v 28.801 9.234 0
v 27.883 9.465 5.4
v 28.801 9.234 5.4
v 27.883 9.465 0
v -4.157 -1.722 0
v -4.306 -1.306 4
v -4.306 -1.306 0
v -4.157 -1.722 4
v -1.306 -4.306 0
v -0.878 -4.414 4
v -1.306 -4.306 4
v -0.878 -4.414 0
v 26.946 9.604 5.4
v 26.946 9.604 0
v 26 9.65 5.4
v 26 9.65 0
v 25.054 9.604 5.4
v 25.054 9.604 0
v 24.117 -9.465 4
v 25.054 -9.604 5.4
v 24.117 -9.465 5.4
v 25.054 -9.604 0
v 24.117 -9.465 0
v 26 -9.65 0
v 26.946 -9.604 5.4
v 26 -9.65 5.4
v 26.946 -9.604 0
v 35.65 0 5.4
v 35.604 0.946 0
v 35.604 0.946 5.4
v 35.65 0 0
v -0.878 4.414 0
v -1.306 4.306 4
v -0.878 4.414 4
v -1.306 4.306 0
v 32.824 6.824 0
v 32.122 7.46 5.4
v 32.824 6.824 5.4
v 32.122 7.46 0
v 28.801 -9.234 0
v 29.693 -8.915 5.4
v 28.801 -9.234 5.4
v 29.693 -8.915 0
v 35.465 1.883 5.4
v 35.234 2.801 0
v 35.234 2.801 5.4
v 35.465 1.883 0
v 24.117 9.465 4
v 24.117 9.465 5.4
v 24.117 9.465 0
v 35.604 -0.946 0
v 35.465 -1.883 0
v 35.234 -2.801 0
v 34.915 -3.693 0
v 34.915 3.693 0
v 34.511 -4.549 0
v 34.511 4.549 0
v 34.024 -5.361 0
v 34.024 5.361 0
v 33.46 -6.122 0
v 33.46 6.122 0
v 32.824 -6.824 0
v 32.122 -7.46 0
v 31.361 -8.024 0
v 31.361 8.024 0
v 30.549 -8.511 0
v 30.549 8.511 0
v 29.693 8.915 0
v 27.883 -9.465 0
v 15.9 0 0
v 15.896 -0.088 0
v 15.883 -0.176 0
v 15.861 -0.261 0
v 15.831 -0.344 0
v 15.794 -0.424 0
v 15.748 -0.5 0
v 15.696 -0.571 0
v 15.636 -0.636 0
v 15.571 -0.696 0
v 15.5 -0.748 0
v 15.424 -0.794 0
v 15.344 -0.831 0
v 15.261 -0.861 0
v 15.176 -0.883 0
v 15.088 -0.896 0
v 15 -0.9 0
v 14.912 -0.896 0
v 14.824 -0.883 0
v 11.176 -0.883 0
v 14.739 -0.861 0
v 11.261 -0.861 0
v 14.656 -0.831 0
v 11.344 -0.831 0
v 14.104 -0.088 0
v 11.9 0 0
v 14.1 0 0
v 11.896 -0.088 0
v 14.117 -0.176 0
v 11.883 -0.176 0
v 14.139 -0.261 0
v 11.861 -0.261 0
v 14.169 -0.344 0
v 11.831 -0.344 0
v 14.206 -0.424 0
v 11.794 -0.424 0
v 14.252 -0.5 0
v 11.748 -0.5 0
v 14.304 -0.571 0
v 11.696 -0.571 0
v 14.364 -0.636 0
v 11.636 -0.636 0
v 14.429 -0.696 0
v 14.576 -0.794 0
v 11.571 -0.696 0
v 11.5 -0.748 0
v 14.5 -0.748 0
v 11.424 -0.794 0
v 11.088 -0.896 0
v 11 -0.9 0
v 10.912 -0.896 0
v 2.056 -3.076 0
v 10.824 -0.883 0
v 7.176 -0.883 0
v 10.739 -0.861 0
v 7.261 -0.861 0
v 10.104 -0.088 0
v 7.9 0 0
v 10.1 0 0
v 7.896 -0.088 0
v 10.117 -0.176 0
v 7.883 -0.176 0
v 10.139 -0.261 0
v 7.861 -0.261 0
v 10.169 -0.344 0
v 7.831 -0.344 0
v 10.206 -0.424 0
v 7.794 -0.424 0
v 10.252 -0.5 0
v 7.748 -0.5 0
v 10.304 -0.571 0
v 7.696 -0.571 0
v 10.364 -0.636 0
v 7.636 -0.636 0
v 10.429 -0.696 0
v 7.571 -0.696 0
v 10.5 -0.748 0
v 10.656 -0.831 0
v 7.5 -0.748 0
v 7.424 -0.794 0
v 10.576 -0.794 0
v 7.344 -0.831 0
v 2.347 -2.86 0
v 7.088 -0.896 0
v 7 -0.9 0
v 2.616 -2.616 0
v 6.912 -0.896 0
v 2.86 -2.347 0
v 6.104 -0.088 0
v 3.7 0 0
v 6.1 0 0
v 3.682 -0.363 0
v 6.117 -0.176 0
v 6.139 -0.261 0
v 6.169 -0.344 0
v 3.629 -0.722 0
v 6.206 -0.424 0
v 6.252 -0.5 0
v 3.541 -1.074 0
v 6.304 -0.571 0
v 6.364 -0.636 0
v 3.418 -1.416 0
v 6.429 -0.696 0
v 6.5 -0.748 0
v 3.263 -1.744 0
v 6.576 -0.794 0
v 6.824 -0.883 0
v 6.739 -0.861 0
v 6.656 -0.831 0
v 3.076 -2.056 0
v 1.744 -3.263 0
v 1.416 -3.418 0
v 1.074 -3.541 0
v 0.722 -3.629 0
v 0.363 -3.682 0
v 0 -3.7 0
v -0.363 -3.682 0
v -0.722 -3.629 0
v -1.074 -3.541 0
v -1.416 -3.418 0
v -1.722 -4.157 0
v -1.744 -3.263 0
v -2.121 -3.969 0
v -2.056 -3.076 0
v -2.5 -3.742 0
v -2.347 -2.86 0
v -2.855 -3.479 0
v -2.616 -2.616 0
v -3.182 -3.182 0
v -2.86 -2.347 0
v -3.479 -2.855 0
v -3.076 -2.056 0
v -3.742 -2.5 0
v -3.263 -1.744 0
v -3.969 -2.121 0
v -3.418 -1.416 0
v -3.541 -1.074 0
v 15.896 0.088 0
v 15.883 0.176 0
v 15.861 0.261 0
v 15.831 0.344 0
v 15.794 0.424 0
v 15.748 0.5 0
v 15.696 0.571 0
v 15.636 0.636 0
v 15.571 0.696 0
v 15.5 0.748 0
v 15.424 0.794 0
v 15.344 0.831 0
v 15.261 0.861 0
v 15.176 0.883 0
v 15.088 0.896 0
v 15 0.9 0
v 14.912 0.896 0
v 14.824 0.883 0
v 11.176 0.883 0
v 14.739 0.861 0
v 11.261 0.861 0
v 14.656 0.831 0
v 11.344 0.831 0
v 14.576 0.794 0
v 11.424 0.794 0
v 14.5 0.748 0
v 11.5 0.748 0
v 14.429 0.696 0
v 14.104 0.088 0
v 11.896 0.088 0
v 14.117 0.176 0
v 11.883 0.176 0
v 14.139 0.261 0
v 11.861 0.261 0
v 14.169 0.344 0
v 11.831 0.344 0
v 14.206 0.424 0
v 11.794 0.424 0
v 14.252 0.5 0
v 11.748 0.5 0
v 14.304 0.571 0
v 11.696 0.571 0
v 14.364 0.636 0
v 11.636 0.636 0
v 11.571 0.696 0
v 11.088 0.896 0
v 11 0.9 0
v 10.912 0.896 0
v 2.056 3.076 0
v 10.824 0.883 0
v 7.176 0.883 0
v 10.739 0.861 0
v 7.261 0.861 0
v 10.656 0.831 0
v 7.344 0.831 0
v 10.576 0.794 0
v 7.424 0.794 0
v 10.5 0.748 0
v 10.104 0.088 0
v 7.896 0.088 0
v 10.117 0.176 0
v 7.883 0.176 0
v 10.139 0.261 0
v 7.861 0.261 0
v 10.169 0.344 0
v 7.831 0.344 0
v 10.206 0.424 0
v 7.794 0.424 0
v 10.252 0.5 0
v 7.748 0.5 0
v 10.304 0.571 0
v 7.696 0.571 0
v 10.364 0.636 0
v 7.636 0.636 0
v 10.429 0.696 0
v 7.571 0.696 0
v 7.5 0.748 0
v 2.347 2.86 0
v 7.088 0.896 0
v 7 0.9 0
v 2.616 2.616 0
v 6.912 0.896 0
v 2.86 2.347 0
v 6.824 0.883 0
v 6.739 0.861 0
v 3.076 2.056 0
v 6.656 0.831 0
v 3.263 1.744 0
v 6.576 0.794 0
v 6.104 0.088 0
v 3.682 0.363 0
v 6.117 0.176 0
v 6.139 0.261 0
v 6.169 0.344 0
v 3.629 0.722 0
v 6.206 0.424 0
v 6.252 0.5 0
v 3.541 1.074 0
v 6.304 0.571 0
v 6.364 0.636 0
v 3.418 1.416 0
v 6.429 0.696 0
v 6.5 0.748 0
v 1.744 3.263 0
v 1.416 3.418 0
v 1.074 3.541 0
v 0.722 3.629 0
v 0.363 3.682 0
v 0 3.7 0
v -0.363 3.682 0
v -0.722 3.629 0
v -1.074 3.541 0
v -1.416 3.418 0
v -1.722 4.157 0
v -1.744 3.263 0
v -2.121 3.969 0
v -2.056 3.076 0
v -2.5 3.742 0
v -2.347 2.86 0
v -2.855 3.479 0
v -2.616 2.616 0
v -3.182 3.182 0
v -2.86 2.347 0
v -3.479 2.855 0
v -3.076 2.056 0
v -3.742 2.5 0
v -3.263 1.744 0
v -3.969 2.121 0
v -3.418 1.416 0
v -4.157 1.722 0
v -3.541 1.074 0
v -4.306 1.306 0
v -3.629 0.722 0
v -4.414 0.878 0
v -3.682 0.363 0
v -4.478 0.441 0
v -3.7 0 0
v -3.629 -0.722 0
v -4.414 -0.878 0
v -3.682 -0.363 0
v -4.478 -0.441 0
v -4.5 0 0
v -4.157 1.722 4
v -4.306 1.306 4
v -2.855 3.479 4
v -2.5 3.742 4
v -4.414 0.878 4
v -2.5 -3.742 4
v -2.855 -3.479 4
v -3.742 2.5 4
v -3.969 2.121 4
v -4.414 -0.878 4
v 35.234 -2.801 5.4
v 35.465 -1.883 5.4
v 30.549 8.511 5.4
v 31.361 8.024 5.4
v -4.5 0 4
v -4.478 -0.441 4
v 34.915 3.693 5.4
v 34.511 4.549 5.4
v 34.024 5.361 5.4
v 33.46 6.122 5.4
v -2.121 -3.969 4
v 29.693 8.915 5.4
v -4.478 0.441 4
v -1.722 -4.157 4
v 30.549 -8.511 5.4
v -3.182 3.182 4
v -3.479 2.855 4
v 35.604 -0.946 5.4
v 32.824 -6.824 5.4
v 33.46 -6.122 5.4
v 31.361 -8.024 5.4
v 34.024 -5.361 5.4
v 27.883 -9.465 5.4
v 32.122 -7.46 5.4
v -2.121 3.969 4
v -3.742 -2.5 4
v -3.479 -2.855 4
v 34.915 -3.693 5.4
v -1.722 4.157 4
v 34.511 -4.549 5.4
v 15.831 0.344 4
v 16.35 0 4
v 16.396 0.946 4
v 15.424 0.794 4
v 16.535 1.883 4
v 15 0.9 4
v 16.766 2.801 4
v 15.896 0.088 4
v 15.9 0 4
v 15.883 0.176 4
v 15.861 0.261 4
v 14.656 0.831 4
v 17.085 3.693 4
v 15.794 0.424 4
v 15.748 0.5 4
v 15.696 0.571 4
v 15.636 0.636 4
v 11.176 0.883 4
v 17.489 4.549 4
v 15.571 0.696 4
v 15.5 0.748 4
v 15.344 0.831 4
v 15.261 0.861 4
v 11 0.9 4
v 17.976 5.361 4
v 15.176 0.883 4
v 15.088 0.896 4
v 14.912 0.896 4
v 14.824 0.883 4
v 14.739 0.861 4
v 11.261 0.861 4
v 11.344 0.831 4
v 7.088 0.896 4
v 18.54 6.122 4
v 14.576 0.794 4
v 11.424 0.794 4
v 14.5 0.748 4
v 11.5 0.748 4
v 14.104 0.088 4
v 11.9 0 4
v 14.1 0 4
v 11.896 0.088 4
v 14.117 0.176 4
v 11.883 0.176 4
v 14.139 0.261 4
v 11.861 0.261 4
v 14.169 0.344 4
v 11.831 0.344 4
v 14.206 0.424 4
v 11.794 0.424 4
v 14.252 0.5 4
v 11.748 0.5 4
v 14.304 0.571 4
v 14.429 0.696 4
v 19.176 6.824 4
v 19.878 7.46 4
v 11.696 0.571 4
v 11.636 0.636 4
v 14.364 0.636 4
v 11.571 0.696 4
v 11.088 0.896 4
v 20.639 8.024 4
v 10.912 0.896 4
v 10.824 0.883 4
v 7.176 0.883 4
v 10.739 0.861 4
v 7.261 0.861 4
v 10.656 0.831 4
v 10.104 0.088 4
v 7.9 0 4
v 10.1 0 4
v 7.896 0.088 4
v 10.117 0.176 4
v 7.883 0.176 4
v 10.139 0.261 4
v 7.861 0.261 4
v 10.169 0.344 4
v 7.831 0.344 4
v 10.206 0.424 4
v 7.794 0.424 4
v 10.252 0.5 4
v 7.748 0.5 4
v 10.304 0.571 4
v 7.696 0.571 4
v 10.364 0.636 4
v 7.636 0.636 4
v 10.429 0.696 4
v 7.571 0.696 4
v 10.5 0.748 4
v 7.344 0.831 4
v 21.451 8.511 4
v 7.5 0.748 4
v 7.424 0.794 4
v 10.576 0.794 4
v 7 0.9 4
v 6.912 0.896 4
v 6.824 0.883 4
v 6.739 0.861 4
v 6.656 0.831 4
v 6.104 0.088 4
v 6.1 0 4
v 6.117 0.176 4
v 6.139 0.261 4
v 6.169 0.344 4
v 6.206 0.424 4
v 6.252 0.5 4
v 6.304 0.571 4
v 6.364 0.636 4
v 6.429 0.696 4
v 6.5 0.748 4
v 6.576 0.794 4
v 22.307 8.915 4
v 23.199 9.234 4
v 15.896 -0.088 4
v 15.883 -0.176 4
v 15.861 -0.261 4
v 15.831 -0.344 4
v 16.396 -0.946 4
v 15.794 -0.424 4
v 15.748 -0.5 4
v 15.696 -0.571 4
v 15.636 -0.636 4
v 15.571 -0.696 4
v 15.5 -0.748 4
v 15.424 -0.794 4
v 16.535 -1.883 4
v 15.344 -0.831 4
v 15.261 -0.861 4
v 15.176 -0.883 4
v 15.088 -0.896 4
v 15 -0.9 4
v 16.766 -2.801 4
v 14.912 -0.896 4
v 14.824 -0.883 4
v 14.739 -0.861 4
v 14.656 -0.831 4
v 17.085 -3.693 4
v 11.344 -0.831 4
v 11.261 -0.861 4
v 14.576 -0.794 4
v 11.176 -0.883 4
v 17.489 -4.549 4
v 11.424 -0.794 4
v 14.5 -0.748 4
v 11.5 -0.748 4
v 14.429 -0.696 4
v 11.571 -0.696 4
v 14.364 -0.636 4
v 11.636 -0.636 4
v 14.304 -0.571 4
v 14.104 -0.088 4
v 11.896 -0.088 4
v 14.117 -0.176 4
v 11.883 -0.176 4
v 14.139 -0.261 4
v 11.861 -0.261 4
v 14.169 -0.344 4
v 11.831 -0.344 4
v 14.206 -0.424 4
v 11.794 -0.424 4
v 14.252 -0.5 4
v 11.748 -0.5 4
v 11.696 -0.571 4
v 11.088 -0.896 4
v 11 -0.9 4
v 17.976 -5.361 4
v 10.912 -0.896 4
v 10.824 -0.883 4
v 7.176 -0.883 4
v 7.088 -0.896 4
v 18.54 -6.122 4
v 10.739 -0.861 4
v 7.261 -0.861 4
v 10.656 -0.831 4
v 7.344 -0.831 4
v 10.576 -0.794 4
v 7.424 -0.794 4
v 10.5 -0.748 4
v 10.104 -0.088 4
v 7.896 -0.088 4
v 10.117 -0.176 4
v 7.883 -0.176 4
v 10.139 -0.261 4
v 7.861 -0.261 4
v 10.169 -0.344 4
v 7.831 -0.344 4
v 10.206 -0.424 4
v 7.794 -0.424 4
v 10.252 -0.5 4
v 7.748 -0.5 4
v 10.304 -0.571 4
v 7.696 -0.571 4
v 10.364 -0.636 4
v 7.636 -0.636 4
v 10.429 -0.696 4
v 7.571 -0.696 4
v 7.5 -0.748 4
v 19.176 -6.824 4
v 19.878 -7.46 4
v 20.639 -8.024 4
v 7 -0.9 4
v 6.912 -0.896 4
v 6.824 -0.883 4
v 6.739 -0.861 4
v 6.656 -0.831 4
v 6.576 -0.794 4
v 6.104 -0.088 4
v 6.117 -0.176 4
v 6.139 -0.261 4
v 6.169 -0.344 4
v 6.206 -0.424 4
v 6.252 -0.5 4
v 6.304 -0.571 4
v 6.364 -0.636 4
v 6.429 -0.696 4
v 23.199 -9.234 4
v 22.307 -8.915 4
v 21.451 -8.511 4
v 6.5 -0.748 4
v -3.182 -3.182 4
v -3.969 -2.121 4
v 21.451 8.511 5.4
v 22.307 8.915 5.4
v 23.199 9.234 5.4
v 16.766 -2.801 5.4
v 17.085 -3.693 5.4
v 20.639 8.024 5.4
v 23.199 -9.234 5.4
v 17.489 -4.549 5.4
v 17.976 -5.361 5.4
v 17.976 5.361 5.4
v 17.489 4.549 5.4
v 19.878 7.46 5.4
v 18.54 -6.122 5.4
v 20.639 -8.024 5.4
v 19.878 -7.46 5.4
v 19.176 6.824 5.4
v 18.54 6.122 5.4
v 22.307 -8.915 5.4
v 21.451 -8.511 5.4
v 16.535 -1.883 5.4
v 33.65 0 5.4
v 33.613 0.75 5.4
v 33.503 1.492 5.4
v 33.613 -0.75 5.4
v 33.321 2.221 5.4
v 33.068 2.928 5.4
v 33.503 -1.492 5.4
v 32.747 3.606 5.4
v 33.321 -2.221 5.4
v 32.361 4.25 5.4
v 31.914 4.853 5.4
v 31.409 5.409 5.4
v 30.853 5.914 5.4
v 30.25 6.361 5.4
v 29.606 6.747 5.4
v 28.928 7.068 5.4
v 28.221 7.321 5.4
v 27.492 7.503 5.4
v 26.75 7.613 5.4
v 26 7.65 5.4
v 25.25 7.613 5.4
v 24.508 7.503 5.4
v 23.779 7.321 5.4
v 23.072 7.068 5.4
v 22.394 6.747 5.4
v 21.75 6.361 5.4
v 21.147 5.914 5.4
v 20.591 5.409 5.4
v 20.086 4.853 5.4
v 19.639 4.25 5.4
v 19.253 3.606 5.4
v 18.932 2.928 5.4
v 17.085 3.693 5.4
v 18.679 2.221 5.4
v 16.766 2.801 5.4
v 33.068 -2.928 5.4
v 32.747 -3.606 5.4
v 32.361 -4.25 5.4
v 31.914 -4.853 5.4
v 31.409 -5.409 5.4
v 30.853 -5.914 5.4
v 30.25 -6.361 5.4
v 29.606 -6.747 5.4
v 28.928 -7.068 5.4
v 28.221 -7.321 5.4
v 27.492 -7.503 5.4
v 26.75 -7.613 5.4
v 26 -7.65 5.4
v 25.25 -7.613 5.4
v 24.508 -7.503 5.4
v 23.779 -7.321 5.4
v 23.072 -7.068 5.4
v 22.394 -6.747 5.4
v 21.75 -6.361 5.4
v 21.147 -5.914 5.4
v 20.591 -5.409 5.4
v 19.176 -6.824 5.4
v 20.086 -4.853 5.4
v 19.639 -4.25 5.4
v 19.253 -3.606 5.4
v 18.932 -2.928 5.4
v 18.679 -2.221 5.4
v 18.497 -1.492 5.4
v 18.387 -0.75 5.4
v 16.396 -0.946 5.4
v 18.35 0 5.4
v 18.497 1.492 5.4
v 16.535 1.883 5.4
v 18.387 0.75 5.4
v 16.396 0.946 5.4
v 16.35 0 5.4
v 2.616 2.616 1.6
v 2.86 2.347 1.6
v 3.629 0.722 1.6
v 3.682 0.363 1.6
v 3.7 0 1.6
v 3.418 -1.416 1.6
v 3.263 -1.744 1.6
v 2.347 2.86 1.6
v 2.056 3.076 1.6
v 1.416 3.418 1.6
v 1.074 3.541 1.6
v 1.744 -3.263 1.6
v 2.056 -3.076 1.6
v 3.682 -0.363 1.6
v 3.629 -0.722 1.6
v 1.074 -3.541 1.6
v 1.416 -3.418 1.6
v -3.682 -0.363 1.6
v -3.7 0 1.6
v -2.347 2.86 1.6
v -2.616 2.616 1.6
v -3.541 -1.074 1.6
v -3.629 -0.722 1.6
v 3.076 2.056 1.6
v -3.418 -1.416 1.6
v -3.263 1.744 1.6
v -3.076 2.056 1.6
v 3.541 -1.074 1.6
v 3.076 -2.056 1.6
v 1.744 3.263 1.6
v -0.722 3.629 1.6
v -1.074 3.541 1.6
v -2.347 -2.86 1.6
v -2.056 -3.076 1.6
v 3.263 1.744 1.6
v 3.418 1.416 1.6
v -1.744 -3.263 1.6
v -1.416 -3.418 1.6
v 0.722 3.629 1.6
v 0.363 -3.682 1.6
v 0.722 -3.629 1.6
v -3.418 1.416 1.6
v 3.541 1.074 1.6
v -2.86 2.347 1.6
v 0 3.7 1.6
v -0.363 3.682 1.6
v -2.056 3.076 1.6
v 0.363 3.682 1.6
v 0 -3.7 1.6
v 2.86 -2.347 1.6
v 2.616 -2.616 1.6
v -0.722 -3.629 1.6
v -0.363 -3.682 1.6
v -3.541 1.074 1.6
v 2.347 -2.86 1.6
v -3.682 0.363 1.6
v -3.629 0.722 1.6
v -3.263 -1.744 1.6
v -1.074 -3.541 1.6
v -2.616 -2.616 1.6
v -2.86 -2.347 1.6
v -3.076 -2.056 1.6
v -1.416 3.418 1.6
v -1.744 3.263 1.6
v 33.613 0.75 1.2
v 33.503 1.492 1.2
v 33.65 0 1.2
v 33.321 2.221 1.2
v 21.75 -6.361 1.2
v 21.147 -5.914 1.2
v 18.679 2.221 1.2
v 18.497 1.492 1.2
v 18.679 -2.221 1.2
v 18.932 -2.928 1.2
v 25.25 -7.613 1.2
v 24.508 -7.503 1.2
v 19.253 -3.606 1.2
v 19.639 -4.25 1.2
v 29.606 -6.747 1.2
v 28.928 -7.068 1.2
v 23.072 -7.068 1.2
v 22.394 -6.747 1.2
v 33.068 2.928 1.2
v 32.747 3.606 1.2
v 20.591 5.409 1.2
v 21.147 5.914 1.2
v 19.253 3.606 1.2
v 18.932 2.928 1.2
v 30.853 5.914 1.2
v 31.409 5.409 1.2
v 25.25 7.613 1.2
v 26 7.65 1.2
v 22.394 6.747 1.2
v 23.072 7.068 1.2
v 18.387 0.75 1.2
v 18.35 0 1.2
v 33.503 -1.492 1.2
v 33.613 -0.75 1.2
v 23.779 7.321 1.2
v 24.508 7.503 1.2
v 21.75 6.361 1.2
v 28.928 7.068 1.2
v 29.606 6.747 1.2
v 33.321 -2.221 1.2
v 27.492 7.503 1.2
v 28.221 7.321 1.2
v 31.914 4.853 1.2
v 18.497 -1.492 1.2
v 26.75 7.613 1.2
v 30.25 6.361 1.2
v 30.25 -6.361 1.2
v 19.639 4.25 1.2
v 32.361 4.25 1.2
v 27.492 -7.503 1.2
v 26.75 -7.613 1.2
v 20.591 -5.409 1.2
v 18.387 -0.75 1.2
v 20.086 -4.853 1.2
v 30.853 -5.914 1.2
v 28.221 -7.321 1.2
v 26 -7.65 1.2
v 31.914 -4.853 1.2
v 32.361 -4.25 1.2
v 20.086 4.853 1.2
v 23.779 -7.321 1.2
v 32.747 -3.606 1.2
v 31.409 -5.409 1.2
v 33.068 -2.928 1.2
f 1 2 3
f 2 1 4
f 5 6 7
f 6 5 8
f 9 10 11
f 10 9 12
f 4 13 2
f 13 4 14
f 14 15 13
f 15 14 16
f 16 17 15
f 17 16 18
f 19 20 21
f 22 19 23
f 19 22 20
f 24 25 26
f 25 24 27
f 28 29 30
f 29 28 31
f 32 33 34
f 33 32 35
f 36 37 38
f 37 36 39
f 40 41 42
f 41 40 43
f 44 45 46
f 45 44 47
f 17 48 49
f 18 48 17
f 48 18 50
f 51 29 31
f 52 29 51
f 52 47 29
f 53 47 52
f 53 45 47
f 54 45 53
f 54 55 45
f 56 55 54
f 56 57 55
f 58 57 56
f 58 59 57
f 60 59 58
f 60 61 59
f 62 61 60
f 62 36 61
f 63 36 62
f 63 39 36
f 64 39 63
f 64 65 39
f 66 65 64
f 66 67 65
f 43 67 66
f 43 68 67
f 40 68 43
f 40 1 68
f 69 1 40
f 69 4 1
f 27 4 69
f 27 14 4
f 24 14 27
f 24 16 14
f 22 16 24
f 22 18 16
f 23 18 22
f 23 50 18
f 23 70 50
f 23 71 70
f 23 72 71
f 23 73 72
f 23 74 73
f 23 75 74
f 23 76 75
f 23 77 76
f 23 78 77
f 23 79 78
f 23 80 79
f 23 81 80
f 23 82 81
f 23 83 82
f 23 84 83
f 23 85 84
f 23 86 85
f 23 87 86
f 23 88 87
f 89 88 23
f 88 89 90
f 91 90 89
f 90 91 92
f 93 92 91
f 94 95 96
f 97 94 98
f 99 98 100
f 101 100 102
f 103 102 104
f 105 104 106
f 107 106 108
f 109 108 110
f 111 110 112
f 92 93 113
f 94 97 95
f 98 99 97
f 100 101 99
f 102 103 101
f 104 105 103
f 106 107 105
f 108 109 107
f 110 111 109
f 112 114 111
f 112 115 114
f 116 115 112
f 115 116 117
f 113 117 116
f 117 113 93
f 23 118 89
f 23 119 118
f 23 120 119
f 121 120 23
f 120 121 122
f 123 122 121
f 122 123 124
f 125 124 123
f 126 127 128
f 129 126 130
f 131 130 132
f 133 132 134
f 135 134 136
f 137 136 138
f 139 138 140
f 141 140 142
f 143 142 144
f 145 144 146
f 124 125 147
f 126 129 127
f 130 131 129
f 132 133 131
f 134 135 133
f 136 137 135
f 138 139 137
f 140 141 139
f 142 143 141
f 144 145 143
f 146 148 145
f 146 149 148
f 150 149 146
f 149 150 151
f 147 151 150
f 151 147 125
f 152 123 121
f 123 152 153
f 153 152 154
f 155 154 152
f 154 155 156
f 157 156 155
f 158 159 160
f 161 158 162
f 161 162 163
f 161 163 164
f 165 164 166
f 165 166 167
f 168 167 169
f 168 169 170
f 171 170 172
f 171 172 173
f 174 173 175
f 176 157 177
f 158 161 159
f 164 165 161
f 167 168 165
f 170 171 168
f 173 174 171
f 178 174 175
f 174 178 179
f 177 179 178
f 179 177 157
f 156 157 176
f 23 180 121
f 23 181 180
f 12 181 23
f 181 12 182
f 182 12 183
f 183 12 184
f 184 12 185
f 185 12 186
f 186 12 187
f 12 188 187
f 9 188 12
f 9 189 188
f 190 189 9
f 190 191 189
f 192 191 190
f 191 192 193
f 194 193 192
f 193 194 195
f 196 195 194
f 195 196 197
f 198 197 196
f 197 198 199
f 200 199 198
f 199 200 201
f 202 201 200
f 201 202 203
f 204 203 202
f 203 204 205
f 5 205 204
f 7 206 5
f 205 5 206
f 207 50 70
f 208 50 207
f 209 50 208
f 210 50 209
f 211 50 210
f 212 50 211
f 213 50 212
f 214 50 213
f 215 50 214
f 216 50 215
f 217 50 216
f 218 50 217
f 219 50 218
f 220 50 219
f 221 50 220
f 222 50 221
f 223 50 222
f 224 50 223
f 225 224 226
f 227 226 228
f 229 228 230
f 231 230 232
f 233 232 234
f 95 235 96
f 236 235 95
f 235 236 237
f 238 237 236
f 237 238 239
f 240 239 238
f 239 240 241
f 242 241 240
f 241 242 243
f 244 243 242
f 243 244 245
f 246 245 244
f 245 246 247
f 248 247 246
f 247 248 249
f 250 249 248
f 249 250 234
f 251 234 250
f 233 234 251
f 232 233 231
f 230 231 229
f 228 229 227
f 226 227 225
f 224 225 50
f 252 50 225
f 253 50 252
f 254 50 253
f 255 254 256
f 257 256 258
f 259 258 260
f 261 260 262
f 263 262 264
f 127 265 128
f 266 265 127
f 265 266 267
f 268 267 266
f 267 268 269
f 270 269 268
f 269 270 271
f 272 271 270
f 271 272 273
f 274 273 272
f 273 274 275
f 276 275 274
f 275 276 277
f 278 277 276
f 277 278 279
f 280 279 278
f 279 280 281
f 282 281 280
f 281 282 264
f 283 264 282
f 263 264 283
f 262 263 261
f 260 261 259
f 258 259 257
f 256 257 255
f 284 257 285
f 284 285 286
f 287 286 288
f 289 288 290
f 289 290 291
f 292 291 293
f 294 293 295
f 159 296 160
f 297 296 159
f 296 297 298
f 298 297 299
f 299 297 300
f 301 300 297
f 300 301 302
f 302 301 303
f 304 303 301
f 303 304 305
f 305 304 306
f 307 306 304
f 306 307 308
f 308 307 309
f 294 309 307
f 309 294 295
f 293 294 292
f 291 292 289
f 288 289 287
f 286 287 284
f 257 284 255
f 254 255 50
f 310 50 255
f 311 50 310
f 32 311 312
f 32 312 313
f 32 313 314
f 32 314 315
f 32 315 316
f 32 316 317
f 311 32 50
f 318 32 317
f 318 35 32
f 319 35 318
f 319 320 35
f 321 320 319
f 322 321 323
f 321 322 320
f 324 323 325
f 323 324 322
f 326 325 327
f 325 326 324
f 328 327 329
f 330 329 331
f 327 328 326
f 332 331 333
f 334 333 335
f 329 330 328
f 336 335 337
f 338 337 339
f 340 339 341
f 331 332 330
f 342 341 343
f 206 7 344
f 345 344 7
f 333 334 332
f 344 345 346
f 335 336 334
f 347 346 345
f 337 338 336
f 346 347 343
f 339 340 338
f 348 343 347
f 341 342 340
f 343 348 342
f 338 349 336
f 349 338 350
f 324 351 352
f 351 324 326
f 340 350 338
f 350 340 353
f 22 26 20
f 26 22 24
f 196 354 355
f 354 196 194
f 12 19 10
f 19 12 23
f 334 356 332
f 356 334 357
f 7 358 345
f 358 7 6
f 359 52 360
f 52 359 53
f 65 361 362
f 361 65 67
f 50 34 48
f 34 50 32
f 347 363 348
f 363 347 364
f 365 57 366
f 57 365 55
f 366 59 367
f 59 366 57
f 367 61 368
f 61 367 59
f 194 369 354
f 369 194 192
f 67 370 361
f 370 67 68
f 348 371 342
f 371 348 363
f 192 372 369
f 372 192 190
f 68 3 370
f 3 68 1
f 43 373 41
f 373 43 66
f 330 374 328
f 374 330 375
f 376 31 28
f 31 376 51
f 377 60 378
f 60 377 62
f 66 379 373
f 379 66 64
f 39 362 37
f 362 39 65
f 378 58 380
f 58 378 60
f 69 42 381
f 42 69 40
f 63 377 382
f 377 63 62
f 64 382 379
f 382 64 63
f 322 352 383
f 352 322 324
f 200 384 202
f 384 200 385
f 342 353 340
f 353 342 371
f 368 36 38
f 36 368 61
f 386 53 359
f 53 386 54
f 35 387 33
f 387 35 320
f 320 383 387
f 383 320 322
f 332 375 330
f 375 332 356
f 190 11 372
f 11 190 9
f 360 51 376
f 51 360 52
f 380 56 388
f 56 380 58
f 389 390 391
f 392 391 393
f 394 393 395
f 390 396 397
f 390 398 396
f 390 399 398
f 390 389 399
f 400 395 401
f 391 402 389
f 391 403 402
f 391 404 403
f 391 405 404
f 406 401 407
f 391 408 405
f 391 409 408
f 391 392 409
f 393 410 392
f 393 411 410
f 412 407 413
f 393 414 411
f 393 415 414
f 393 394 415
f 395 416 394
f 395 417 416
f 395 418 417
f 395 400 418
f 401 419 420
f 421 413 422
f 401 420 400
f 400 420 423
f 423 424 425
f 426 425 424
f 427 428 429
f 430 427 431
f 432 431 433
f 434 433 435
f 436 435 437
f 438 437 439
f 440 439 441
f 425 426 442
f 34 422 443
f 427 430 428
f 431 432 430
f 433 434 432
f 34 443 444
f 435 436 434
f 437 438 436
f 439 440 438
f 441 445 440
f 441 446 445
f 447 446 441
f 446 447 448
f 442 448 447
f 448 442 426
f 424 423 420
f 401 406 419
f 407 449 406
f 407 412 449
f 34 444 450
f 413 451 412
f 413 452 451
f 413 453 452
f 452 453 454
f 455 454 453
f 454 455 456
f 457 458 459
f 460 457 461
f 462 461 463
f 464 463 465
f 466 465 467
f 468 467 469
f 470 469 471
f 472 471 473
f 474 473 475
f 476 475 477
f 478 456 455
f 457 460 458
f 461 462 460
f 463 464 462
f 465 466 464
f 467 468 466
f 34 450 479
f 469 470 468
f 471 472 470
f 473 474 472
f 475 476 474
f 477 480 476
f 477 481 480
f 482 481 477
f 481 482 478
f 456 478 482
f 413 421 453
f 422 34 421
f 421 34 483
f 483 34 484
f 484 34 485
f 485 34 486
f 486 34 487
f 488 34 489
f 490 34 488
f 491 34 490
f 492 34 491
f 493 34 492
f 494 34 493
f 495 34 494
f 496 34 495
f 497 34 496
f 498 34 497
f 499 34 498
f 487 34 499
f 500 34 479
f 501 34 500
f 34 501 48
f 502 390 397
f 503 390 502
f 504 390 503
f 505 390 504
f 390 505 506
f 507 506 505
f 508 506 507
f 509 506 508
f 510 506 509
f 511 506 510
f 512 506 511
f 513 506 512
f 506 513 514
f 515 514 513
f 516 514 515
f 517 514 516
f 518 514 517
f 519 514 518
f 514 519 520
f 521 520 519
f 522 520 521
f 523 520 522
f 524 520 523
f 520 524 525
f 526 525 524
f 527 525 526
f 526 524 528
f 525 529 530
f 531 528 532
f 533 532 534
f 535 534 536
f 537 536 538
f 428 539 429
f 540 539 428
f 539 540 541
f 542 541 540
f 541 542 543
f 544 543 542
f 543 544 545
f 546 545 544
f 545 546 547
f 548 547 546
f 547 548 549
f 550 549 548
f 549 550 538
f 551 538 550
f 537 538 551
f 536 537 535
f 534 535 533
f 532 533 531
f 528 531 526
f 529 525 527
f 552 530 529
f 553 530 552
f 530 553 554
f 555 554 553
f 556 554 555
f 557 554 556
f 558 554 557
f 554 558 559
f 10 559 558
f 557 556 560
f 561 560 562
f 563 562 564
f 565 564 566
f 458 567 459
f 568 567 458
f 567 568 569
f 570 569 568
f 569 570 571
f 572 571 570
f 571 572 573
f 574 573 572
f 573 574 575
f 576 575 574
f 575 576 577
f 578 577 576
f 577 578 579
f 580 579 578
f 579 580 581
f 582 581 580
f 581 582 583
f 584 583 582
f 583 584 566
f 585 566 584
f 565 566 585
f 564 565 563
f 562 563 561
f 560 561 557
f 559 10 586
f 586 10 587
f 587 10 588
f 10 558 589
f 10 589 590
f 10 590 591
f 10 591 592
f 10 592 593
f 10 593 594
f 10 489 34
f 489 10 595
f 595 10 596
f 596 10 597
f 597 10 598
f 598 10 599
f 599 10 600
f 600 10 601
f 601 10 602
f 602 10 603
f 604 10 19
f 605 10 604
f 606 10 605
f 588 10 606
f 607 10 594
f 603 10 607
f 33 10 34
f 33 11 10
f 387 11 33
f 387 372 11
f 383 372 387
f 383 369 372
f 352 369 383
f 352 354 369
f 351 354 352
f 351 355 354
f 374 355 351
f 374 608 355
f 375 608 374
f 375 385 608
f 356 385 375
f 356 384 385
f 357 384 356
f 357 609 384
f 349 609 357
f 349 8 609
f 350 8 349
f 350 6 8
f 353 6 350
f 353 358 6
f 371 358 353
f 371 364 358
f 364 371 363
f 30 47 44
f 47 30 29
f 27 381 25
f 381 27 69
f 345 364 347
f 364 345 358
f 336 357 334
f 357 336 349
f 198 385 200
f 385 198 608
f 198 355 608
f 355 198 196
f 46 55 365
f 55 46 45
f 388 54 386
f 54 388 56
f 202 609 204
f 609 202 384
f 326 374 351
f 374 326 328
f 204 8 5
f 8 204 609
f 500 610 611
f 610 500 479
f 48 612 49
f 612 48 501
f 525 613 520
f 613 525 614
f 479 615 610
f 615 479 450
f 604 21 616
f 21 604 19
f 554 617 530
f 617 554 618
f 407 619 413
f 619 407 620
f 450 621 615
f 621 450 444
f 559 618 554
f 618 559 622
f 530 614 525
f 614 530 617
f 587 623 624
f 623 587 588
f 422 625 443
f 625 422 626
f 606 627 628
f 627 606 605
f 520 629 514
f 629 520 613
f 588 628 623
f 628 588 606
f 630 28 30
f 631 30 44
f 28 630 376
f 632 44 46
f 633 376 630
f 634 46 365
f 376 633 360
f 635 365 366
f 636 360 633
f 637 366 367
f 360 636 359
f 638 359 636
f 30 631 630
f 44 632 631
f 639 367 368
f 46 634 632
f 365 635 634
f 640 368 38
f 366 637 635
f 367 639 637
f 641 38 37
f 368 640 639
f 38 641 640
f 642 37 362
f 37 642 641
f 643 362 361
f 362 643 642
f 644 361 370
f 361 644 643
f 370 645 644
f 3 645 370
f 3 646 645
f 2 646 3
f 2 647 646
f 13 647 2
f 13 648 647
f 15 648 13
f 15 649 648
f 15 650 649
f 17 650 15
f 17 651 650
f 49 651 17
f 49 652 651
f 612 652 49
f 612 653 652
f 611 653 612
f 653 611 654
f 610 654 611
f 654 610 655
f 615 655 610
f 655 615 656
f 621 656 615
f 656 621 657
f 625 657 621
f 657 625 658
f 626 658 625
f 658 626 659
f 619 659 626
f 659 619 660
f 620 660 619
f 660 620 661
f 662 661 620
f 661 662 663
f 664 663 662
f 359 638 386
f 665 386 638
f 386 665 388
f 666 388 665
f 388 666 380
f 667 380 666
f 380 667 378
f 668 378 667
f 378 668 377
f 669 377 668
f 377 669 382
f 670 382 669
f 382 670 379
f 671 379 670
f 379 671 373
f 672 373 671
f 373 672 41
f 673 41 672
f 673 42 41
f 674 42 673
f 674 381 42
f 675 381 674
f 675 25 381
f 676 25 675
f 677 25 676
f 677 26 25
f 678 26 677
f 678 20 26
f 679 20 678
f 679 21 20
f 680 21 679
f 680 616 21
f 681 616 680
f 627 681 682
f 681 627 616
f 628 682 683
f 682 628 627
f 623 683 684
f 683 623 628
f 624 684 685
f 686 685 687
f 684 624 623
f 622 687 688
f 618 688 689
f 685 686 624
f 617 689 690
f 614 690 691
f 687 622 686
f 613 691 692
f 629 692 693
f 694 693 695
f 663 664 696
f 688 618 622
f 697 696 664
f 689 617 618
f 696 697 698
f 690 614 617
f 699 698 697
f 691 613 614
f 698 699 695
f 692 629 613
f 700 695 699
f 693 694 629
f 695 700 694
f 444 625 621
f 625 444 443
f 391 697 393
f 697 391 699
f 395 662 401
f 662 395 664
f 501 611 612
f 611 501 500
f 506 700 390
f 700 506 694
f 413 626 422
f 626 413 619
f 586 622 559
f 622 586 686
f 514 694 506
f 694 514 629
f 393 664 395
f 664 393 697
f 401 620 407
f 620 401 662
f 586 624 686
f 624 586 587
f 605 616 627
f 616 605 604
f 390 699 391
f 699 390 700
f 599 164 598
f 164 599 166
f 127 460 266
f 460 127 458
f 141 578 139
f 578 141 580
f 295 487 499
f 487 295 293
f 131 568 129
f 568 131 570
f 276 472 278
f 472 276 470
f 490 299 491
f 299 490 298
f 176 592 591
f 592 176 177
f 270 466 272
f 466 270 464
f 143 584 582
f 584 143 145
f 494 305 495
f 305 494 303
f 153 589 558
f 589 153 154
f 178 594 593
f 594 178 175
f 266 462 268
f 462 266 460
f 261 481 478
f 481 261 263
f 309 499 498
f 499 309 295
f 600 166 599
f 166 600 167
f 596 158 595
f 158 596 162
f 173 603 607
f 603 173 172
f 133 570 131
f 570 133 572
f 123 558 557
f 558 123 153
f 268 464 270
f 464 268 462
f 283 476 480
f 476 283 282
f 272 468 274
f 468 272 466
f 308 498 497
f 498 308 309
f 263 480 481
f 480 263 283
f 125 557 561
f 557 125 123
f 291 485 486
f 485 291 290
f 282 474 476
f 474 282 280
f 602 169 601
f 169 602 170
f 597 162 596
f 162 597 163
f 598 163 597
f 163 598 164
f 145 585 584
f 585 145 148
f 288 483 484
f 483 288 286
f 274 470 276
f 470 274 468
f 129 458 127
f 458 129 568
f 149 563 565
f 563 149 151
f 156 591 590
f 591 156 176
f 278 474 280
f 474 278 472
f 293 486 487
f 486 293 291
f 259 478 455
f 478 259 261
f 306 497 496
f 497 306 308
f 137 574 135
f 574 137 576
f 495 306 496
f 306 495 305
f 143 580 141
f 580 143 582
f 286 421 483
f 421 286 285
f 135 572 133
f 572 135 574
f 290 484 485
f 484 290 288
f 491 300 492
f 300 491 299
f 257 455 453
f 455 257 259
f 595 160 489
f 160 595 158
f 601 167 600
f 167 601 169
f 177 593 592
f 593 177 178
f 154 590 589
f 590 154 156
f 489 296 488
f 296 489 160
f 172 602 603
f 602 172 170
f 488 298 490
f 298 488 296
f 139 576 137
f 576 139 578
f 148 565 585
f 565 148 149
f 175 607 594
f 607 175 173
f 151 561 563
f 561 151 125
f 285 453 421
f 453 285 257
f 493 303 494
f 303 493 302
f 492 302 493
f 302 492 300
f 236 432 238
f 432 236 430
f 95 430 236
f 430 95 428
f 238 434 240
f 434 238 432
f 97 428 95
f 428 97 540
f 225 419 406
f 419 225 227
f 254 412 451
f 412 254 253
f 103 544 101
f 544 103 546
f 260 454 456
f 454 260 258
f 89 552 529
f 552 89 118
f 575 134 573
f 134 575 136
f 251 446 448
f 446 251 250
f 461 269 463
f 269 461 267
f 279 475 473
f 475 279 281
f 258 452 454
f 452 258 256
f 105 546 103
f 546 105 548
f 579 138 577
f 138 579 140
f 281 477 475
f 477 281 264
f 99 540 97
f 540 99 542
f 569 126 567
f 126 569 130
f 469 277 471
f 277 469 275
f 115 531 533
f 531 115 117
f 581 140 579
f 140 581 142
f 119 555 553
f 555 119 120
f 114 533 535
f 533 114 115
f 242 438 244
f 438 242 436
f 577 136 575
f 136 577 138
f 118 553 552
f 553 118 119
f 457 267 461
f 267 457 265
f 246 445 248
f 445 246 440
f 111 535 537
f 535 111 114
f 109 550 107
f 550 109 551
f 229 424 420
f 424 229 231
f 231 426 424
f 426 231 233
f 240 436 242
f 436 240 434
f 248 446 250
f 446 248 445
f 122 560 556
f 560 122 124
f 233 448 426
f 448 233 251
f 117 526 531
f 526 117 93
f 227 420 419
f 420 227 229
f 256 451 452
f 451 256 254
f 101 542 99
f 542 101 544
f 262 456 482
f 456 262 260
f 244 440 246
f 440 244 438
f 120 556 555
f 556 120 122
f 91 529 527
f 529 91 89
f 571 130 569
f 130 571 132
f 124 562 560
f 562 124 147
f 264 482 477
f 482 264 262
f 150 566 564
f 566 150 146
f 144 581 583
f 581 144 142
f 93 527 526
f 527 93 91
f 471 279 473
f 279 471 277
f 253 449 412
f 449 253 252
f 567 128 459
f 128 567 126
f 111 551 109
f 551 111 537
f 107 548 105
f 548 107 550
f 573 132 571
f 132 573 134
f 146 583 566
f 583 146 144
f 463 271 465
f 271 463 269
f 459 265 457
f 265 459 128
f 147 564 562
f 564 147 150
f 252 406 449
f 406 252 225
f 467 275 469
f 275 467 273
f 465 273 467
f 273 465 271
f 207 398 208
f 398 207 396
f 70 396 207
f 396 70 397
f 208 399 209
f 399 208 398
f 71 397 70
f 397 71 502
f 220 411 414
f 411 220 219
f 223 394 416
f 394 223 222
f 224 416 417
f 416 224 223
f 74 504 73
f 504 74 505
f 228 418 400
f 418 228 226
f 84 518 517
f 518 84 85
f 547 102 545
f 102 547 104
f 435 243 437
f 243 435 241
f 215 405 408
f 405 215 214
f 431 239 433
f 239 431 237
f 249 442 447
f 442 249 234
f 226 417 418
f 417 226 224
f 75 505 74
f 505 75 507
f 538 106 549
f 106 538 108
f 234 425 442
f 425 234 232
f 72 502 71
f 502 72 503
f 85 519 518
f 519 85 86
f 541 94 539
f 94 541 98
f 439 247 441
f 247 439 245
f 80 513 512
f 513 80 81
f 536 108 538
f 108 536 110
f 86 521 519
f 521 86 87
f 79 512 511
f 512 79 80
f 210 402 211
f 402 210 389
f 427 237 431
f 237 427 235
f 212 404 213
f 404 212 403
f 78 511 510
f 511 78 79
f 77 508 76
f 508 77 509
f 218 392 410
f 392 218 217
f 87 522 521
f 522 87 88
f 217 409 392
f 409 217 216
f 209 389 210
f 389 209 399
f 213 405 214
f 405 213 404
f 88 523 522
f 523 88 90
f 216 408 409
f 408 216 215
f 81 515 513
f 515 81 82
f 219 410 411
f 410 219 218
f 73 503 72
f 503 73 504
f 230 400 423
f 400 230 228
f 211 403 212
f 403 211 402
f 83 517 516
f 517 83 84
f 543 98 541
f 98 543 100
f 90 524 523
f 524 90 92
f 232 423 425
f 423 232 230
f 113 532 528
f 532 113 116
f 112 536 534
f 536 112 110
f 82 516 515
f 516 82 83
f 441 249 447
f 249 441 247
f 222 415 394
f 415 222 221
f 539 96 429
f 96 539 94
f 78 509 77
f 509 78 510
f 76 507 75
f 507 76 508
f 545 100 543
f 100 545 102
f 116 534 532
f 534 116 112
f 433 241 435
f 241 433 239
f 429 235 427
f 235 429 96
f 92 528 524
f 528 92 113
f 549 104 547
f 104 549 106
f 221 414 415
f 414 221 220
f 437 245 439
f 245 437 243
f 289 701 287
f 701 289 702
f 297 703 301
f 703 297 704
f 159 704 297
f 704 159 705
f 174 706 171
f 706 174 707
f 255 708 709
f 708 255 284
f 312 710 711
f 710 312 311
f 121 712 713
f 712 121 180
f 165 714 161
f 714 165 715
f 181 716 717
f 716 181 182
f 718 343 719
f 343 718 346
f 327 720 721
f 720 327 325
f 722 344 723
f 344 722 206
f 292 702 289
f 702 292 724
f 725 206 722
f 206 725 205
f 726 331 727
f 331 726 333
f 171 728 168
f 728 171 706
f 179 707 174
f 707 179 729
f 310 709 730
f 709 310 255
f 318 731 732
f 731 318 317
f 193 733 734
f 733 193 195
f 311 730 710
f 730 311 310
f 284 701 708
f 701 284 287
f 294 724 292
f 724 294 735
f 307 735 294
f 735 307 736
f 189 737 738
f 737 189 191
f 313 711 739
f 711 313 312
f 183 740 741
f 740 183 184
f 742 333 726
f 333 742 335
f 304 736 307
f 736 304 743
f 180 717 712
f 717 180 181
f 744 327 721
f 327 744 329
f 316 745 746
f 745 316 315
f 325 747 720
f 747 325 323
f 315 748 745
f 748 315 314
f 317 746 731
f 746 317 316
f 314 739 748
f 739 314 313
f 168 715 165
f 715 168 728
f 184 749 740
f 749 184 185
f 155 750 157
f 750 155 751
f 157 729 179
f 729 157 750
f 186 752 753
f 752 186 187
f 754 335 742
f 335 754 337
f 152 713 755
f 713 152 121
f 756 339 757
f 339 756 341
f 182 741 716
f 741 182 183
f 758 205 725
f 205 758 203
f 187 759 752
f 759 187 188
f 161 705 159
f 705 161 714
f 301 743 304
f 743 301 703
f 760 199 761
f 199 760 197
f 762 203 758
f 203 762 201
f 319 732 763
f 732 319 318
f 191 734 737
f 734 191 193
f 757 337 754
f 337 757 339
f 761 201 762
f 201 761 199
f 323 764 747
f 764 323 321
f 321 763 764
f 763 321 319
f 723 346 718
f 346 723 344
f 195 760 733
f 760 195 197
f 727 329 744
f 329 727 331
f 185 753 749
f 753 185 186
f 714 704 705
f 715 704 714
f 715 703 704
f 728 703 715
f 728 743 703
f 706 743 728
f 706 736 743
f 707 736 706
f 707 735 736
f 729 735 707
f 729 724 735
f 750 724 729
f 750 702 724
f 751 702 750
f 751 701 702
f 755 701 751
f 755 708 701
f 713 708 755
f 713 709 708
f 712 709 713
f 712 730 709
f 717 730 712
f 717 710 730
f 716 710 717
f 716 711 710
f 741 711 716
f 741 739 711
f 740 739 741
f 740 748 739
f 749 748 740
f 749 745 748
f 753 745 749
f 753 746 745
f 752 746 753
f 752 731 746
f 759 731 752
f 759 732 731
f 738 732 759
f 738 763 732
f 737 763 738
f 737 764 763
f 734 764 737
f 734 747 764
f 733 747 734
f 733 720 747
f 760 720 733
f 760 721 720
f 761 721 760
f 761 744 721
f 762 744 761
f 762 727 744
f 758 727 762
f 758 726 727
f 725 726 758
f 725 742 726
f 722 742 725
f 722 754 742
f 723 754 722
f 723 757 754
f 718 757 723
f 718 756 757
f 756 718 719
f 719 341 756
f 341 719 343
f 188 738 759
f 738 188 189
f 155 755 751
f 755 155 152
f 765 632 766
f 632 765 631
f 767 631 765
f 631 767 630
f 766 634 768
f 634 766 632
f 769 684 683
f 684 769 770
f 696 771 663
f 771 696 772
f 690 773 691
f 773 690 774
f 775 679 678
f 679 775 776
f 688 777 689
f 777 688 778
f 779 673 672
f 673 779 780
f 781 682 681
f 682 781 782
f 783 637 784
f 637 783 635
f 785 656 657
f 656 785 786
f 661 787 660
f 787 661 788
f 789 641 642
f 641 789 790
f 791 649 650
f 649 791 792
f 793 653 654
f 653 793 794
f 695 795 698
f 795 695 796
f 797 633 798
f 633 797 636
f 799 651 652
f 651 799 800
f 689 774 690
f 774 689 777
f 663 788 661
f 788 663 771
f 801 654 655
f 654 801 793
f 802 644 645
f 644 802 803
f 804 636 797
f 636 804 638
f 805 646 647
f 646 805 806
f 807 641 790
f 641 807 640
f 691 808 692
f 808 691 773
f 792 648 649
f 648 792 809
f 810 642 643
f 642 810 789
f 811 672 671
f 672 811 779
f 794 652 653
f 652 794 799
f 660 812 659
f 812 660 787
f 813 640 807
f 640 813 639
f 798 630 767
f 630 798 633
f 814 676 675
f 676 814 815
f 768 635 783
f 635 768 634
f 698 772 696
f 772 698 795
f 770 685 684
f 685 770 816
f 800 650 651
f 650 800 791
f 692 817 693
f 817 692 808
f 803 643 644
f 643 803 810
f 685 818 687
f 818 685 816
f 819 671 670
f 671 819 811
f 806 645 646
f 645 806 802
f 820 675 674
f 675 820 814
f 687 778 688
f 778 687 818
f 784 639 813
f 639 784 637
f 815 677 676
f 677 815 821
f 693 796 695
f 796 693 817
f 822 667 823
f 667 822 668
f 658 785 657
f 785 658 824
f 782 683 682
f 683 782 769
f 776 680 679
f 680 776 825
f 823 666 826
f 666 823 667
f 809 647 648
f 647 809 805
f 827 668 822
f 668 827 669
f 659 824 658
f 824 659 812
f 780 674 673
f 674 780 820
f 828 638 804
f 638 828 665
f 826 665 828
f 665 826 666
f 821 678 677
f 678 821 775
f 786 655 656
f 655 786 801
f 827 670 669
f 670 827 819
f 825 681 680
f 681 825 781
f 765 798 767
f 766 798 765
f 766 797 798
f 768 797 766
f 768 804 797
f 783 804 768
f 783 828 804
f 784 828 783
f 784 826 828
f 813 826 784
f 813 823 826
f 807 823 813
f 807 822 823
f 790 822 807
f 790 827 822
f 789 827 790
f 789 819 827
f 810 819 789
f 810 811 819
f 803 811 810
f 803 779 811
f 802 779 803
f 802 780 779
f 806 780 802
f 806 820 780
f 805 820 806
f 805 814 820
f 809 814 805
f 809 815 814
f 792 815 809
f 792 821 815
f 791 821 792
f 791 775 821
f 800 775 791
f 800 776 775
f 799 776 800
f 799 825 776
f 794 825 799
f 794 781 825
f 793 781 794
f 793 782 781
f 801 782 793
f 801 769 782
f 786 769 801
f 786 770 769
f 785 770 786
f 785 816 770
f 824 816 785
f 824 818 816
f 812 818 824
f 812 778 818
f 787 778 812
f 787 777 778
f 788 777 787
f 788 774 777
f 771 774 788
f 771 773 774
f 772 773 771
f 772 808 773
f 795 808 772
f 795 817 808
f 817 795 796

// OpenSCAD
// file: common.scad
// OpenRook: shared dimensions for every printed part. Change a number here and re-run
// ../render.sh. Keep SQUARE in step with DEFAULT_SQUARE_MM in firmware/OpenRook/config.h.

$fn = 64;

// ---------------------------------------------------------------- board
SQUARE = 40;            // square pitch (mm)
TILE_SQUARES = 4;       // a playing tile is 4x4 squares; four tiles make the board
TILE_T = 3.4;           // tile thickness
INLAY_D = 0.6;          // dark-square recess depth for a second colour (0 = flat tile)
REED_L = 15;            // reed switch glass length (2x14 mm glass + margin)
REED_W = 2.6;           // groove width for glass body
GROOVE_D = 2.2;         // depth of wire/switch grooves on the tile underside
WIRE_W = 1.6;           // groove width for legs and wires
DIODE_L = 4.5;          // 1N4148 body (DO-35)
DIODE_W = 2.2;

// ---------------------------------------------------------------- pieces
PIECE_BASE = 20;        // base diameter: must stay <= SQUARE/2 so pieces pass between others
PIECE_MAG_D = 10.3;     // pocket for a 10x3 mm N52 disc magnet (+ clearance)
PIECE_MAG_H = 3.2;
FELT = 0;               // stick 0.5-1 mm felt under each piece; no geometry needed

// ---------------------------------------------------------------- hardware
EXTRUSION = 20;         // 2020 aluminium profile
M5 = 5.4;               // M5 clearance
M3 = 3.3;               // M3 clearance
M3_NUT = 6.4;           // across flats + clearance
ROD = 8;                // smooth rods
ROD_FIT = 8.15;
LM8UU_D = 15.2;
LM8UU_L = 24;
F623_D = 10.4;          // F623ZZ flanged bearing: 10 mm OD, 4 mm wide, 11.5 mm flange
F623_W = 4;
F623_FLANGE = 11.6;
NEMA = 42.3;
NEMA_HOLES = 31;
NEMA_BOSS = 22.5;
BELT_W = 6;             // GT2 6 mm
SERVO_W = 12.6;         // SG90 / MG90S body
SERVO_L = 23.2;
SERVO_TAB = 32.5;       // tab-to-tab length
CARRIAGE_MAG_D = 15.3;  // 15x4 mm N52 magnet on the lifting arm
CARRIAGE_MAG_H = 4.2;

// ---------------------------------------------------------------- frame
// Inside the frame: magnet travel 425 x 335 mm plus the gantry around it.
FRAME_X = 560;          // outer size of the 2020 rectangle (front/back extrusions)
FRAME_Y = 480;          // outer size (side extrusions are FRAME_Y - 40 long)
ROD_SPACING_X = 40;     // the two X rods, centre to centre

module rounded_box(size, r = 2) {
  hull() for (x = [r, size[0] - r], y = [r, size[1] - r]) translate([x, y, 0]) cylinder(r = r, h = size[2]);
}

module m3_nut_trap(h = 3) { cylinder(d = M3_NUT / cos(30), h = h, $fn = 6); }
// main file
// Arm for the servo horn with a cup for the 15x4 mm carriage magnet (print 1). Screw it to
// the single-arm horn. With the magnet up it should just kiss the underside of the board;
// tune the angles in the app (Board -> Calibration).
include <common.scad>
ARM = 26;
difference() {
  union() {
    hull() {
      cylinder(d = 9, h = 4);
      translate([ARM, 0, 0]) cylinder(d = CARRIAGE_MAG_D + 4, h = 4);
    }
    translate([ARM, 0, 0]) cylinder(d = CARRIAGE_MAG_D + 4, h = CARRIAGE_MAG_H + 1.2);
  }
  translate([0, 0, -1]) cylinder(d = 7.4, h = 2.6);                 // horn hub recess
  for (x = [7, 11, 15]) translate([x, 0, -1]) cylinder(d = 1.8, h = 6); // horn screw holes
  translate([ARM, 0, 1.2]) cylinder(d = CARRIAGE_MAG_D, h = 10);      // magnet cup
}
